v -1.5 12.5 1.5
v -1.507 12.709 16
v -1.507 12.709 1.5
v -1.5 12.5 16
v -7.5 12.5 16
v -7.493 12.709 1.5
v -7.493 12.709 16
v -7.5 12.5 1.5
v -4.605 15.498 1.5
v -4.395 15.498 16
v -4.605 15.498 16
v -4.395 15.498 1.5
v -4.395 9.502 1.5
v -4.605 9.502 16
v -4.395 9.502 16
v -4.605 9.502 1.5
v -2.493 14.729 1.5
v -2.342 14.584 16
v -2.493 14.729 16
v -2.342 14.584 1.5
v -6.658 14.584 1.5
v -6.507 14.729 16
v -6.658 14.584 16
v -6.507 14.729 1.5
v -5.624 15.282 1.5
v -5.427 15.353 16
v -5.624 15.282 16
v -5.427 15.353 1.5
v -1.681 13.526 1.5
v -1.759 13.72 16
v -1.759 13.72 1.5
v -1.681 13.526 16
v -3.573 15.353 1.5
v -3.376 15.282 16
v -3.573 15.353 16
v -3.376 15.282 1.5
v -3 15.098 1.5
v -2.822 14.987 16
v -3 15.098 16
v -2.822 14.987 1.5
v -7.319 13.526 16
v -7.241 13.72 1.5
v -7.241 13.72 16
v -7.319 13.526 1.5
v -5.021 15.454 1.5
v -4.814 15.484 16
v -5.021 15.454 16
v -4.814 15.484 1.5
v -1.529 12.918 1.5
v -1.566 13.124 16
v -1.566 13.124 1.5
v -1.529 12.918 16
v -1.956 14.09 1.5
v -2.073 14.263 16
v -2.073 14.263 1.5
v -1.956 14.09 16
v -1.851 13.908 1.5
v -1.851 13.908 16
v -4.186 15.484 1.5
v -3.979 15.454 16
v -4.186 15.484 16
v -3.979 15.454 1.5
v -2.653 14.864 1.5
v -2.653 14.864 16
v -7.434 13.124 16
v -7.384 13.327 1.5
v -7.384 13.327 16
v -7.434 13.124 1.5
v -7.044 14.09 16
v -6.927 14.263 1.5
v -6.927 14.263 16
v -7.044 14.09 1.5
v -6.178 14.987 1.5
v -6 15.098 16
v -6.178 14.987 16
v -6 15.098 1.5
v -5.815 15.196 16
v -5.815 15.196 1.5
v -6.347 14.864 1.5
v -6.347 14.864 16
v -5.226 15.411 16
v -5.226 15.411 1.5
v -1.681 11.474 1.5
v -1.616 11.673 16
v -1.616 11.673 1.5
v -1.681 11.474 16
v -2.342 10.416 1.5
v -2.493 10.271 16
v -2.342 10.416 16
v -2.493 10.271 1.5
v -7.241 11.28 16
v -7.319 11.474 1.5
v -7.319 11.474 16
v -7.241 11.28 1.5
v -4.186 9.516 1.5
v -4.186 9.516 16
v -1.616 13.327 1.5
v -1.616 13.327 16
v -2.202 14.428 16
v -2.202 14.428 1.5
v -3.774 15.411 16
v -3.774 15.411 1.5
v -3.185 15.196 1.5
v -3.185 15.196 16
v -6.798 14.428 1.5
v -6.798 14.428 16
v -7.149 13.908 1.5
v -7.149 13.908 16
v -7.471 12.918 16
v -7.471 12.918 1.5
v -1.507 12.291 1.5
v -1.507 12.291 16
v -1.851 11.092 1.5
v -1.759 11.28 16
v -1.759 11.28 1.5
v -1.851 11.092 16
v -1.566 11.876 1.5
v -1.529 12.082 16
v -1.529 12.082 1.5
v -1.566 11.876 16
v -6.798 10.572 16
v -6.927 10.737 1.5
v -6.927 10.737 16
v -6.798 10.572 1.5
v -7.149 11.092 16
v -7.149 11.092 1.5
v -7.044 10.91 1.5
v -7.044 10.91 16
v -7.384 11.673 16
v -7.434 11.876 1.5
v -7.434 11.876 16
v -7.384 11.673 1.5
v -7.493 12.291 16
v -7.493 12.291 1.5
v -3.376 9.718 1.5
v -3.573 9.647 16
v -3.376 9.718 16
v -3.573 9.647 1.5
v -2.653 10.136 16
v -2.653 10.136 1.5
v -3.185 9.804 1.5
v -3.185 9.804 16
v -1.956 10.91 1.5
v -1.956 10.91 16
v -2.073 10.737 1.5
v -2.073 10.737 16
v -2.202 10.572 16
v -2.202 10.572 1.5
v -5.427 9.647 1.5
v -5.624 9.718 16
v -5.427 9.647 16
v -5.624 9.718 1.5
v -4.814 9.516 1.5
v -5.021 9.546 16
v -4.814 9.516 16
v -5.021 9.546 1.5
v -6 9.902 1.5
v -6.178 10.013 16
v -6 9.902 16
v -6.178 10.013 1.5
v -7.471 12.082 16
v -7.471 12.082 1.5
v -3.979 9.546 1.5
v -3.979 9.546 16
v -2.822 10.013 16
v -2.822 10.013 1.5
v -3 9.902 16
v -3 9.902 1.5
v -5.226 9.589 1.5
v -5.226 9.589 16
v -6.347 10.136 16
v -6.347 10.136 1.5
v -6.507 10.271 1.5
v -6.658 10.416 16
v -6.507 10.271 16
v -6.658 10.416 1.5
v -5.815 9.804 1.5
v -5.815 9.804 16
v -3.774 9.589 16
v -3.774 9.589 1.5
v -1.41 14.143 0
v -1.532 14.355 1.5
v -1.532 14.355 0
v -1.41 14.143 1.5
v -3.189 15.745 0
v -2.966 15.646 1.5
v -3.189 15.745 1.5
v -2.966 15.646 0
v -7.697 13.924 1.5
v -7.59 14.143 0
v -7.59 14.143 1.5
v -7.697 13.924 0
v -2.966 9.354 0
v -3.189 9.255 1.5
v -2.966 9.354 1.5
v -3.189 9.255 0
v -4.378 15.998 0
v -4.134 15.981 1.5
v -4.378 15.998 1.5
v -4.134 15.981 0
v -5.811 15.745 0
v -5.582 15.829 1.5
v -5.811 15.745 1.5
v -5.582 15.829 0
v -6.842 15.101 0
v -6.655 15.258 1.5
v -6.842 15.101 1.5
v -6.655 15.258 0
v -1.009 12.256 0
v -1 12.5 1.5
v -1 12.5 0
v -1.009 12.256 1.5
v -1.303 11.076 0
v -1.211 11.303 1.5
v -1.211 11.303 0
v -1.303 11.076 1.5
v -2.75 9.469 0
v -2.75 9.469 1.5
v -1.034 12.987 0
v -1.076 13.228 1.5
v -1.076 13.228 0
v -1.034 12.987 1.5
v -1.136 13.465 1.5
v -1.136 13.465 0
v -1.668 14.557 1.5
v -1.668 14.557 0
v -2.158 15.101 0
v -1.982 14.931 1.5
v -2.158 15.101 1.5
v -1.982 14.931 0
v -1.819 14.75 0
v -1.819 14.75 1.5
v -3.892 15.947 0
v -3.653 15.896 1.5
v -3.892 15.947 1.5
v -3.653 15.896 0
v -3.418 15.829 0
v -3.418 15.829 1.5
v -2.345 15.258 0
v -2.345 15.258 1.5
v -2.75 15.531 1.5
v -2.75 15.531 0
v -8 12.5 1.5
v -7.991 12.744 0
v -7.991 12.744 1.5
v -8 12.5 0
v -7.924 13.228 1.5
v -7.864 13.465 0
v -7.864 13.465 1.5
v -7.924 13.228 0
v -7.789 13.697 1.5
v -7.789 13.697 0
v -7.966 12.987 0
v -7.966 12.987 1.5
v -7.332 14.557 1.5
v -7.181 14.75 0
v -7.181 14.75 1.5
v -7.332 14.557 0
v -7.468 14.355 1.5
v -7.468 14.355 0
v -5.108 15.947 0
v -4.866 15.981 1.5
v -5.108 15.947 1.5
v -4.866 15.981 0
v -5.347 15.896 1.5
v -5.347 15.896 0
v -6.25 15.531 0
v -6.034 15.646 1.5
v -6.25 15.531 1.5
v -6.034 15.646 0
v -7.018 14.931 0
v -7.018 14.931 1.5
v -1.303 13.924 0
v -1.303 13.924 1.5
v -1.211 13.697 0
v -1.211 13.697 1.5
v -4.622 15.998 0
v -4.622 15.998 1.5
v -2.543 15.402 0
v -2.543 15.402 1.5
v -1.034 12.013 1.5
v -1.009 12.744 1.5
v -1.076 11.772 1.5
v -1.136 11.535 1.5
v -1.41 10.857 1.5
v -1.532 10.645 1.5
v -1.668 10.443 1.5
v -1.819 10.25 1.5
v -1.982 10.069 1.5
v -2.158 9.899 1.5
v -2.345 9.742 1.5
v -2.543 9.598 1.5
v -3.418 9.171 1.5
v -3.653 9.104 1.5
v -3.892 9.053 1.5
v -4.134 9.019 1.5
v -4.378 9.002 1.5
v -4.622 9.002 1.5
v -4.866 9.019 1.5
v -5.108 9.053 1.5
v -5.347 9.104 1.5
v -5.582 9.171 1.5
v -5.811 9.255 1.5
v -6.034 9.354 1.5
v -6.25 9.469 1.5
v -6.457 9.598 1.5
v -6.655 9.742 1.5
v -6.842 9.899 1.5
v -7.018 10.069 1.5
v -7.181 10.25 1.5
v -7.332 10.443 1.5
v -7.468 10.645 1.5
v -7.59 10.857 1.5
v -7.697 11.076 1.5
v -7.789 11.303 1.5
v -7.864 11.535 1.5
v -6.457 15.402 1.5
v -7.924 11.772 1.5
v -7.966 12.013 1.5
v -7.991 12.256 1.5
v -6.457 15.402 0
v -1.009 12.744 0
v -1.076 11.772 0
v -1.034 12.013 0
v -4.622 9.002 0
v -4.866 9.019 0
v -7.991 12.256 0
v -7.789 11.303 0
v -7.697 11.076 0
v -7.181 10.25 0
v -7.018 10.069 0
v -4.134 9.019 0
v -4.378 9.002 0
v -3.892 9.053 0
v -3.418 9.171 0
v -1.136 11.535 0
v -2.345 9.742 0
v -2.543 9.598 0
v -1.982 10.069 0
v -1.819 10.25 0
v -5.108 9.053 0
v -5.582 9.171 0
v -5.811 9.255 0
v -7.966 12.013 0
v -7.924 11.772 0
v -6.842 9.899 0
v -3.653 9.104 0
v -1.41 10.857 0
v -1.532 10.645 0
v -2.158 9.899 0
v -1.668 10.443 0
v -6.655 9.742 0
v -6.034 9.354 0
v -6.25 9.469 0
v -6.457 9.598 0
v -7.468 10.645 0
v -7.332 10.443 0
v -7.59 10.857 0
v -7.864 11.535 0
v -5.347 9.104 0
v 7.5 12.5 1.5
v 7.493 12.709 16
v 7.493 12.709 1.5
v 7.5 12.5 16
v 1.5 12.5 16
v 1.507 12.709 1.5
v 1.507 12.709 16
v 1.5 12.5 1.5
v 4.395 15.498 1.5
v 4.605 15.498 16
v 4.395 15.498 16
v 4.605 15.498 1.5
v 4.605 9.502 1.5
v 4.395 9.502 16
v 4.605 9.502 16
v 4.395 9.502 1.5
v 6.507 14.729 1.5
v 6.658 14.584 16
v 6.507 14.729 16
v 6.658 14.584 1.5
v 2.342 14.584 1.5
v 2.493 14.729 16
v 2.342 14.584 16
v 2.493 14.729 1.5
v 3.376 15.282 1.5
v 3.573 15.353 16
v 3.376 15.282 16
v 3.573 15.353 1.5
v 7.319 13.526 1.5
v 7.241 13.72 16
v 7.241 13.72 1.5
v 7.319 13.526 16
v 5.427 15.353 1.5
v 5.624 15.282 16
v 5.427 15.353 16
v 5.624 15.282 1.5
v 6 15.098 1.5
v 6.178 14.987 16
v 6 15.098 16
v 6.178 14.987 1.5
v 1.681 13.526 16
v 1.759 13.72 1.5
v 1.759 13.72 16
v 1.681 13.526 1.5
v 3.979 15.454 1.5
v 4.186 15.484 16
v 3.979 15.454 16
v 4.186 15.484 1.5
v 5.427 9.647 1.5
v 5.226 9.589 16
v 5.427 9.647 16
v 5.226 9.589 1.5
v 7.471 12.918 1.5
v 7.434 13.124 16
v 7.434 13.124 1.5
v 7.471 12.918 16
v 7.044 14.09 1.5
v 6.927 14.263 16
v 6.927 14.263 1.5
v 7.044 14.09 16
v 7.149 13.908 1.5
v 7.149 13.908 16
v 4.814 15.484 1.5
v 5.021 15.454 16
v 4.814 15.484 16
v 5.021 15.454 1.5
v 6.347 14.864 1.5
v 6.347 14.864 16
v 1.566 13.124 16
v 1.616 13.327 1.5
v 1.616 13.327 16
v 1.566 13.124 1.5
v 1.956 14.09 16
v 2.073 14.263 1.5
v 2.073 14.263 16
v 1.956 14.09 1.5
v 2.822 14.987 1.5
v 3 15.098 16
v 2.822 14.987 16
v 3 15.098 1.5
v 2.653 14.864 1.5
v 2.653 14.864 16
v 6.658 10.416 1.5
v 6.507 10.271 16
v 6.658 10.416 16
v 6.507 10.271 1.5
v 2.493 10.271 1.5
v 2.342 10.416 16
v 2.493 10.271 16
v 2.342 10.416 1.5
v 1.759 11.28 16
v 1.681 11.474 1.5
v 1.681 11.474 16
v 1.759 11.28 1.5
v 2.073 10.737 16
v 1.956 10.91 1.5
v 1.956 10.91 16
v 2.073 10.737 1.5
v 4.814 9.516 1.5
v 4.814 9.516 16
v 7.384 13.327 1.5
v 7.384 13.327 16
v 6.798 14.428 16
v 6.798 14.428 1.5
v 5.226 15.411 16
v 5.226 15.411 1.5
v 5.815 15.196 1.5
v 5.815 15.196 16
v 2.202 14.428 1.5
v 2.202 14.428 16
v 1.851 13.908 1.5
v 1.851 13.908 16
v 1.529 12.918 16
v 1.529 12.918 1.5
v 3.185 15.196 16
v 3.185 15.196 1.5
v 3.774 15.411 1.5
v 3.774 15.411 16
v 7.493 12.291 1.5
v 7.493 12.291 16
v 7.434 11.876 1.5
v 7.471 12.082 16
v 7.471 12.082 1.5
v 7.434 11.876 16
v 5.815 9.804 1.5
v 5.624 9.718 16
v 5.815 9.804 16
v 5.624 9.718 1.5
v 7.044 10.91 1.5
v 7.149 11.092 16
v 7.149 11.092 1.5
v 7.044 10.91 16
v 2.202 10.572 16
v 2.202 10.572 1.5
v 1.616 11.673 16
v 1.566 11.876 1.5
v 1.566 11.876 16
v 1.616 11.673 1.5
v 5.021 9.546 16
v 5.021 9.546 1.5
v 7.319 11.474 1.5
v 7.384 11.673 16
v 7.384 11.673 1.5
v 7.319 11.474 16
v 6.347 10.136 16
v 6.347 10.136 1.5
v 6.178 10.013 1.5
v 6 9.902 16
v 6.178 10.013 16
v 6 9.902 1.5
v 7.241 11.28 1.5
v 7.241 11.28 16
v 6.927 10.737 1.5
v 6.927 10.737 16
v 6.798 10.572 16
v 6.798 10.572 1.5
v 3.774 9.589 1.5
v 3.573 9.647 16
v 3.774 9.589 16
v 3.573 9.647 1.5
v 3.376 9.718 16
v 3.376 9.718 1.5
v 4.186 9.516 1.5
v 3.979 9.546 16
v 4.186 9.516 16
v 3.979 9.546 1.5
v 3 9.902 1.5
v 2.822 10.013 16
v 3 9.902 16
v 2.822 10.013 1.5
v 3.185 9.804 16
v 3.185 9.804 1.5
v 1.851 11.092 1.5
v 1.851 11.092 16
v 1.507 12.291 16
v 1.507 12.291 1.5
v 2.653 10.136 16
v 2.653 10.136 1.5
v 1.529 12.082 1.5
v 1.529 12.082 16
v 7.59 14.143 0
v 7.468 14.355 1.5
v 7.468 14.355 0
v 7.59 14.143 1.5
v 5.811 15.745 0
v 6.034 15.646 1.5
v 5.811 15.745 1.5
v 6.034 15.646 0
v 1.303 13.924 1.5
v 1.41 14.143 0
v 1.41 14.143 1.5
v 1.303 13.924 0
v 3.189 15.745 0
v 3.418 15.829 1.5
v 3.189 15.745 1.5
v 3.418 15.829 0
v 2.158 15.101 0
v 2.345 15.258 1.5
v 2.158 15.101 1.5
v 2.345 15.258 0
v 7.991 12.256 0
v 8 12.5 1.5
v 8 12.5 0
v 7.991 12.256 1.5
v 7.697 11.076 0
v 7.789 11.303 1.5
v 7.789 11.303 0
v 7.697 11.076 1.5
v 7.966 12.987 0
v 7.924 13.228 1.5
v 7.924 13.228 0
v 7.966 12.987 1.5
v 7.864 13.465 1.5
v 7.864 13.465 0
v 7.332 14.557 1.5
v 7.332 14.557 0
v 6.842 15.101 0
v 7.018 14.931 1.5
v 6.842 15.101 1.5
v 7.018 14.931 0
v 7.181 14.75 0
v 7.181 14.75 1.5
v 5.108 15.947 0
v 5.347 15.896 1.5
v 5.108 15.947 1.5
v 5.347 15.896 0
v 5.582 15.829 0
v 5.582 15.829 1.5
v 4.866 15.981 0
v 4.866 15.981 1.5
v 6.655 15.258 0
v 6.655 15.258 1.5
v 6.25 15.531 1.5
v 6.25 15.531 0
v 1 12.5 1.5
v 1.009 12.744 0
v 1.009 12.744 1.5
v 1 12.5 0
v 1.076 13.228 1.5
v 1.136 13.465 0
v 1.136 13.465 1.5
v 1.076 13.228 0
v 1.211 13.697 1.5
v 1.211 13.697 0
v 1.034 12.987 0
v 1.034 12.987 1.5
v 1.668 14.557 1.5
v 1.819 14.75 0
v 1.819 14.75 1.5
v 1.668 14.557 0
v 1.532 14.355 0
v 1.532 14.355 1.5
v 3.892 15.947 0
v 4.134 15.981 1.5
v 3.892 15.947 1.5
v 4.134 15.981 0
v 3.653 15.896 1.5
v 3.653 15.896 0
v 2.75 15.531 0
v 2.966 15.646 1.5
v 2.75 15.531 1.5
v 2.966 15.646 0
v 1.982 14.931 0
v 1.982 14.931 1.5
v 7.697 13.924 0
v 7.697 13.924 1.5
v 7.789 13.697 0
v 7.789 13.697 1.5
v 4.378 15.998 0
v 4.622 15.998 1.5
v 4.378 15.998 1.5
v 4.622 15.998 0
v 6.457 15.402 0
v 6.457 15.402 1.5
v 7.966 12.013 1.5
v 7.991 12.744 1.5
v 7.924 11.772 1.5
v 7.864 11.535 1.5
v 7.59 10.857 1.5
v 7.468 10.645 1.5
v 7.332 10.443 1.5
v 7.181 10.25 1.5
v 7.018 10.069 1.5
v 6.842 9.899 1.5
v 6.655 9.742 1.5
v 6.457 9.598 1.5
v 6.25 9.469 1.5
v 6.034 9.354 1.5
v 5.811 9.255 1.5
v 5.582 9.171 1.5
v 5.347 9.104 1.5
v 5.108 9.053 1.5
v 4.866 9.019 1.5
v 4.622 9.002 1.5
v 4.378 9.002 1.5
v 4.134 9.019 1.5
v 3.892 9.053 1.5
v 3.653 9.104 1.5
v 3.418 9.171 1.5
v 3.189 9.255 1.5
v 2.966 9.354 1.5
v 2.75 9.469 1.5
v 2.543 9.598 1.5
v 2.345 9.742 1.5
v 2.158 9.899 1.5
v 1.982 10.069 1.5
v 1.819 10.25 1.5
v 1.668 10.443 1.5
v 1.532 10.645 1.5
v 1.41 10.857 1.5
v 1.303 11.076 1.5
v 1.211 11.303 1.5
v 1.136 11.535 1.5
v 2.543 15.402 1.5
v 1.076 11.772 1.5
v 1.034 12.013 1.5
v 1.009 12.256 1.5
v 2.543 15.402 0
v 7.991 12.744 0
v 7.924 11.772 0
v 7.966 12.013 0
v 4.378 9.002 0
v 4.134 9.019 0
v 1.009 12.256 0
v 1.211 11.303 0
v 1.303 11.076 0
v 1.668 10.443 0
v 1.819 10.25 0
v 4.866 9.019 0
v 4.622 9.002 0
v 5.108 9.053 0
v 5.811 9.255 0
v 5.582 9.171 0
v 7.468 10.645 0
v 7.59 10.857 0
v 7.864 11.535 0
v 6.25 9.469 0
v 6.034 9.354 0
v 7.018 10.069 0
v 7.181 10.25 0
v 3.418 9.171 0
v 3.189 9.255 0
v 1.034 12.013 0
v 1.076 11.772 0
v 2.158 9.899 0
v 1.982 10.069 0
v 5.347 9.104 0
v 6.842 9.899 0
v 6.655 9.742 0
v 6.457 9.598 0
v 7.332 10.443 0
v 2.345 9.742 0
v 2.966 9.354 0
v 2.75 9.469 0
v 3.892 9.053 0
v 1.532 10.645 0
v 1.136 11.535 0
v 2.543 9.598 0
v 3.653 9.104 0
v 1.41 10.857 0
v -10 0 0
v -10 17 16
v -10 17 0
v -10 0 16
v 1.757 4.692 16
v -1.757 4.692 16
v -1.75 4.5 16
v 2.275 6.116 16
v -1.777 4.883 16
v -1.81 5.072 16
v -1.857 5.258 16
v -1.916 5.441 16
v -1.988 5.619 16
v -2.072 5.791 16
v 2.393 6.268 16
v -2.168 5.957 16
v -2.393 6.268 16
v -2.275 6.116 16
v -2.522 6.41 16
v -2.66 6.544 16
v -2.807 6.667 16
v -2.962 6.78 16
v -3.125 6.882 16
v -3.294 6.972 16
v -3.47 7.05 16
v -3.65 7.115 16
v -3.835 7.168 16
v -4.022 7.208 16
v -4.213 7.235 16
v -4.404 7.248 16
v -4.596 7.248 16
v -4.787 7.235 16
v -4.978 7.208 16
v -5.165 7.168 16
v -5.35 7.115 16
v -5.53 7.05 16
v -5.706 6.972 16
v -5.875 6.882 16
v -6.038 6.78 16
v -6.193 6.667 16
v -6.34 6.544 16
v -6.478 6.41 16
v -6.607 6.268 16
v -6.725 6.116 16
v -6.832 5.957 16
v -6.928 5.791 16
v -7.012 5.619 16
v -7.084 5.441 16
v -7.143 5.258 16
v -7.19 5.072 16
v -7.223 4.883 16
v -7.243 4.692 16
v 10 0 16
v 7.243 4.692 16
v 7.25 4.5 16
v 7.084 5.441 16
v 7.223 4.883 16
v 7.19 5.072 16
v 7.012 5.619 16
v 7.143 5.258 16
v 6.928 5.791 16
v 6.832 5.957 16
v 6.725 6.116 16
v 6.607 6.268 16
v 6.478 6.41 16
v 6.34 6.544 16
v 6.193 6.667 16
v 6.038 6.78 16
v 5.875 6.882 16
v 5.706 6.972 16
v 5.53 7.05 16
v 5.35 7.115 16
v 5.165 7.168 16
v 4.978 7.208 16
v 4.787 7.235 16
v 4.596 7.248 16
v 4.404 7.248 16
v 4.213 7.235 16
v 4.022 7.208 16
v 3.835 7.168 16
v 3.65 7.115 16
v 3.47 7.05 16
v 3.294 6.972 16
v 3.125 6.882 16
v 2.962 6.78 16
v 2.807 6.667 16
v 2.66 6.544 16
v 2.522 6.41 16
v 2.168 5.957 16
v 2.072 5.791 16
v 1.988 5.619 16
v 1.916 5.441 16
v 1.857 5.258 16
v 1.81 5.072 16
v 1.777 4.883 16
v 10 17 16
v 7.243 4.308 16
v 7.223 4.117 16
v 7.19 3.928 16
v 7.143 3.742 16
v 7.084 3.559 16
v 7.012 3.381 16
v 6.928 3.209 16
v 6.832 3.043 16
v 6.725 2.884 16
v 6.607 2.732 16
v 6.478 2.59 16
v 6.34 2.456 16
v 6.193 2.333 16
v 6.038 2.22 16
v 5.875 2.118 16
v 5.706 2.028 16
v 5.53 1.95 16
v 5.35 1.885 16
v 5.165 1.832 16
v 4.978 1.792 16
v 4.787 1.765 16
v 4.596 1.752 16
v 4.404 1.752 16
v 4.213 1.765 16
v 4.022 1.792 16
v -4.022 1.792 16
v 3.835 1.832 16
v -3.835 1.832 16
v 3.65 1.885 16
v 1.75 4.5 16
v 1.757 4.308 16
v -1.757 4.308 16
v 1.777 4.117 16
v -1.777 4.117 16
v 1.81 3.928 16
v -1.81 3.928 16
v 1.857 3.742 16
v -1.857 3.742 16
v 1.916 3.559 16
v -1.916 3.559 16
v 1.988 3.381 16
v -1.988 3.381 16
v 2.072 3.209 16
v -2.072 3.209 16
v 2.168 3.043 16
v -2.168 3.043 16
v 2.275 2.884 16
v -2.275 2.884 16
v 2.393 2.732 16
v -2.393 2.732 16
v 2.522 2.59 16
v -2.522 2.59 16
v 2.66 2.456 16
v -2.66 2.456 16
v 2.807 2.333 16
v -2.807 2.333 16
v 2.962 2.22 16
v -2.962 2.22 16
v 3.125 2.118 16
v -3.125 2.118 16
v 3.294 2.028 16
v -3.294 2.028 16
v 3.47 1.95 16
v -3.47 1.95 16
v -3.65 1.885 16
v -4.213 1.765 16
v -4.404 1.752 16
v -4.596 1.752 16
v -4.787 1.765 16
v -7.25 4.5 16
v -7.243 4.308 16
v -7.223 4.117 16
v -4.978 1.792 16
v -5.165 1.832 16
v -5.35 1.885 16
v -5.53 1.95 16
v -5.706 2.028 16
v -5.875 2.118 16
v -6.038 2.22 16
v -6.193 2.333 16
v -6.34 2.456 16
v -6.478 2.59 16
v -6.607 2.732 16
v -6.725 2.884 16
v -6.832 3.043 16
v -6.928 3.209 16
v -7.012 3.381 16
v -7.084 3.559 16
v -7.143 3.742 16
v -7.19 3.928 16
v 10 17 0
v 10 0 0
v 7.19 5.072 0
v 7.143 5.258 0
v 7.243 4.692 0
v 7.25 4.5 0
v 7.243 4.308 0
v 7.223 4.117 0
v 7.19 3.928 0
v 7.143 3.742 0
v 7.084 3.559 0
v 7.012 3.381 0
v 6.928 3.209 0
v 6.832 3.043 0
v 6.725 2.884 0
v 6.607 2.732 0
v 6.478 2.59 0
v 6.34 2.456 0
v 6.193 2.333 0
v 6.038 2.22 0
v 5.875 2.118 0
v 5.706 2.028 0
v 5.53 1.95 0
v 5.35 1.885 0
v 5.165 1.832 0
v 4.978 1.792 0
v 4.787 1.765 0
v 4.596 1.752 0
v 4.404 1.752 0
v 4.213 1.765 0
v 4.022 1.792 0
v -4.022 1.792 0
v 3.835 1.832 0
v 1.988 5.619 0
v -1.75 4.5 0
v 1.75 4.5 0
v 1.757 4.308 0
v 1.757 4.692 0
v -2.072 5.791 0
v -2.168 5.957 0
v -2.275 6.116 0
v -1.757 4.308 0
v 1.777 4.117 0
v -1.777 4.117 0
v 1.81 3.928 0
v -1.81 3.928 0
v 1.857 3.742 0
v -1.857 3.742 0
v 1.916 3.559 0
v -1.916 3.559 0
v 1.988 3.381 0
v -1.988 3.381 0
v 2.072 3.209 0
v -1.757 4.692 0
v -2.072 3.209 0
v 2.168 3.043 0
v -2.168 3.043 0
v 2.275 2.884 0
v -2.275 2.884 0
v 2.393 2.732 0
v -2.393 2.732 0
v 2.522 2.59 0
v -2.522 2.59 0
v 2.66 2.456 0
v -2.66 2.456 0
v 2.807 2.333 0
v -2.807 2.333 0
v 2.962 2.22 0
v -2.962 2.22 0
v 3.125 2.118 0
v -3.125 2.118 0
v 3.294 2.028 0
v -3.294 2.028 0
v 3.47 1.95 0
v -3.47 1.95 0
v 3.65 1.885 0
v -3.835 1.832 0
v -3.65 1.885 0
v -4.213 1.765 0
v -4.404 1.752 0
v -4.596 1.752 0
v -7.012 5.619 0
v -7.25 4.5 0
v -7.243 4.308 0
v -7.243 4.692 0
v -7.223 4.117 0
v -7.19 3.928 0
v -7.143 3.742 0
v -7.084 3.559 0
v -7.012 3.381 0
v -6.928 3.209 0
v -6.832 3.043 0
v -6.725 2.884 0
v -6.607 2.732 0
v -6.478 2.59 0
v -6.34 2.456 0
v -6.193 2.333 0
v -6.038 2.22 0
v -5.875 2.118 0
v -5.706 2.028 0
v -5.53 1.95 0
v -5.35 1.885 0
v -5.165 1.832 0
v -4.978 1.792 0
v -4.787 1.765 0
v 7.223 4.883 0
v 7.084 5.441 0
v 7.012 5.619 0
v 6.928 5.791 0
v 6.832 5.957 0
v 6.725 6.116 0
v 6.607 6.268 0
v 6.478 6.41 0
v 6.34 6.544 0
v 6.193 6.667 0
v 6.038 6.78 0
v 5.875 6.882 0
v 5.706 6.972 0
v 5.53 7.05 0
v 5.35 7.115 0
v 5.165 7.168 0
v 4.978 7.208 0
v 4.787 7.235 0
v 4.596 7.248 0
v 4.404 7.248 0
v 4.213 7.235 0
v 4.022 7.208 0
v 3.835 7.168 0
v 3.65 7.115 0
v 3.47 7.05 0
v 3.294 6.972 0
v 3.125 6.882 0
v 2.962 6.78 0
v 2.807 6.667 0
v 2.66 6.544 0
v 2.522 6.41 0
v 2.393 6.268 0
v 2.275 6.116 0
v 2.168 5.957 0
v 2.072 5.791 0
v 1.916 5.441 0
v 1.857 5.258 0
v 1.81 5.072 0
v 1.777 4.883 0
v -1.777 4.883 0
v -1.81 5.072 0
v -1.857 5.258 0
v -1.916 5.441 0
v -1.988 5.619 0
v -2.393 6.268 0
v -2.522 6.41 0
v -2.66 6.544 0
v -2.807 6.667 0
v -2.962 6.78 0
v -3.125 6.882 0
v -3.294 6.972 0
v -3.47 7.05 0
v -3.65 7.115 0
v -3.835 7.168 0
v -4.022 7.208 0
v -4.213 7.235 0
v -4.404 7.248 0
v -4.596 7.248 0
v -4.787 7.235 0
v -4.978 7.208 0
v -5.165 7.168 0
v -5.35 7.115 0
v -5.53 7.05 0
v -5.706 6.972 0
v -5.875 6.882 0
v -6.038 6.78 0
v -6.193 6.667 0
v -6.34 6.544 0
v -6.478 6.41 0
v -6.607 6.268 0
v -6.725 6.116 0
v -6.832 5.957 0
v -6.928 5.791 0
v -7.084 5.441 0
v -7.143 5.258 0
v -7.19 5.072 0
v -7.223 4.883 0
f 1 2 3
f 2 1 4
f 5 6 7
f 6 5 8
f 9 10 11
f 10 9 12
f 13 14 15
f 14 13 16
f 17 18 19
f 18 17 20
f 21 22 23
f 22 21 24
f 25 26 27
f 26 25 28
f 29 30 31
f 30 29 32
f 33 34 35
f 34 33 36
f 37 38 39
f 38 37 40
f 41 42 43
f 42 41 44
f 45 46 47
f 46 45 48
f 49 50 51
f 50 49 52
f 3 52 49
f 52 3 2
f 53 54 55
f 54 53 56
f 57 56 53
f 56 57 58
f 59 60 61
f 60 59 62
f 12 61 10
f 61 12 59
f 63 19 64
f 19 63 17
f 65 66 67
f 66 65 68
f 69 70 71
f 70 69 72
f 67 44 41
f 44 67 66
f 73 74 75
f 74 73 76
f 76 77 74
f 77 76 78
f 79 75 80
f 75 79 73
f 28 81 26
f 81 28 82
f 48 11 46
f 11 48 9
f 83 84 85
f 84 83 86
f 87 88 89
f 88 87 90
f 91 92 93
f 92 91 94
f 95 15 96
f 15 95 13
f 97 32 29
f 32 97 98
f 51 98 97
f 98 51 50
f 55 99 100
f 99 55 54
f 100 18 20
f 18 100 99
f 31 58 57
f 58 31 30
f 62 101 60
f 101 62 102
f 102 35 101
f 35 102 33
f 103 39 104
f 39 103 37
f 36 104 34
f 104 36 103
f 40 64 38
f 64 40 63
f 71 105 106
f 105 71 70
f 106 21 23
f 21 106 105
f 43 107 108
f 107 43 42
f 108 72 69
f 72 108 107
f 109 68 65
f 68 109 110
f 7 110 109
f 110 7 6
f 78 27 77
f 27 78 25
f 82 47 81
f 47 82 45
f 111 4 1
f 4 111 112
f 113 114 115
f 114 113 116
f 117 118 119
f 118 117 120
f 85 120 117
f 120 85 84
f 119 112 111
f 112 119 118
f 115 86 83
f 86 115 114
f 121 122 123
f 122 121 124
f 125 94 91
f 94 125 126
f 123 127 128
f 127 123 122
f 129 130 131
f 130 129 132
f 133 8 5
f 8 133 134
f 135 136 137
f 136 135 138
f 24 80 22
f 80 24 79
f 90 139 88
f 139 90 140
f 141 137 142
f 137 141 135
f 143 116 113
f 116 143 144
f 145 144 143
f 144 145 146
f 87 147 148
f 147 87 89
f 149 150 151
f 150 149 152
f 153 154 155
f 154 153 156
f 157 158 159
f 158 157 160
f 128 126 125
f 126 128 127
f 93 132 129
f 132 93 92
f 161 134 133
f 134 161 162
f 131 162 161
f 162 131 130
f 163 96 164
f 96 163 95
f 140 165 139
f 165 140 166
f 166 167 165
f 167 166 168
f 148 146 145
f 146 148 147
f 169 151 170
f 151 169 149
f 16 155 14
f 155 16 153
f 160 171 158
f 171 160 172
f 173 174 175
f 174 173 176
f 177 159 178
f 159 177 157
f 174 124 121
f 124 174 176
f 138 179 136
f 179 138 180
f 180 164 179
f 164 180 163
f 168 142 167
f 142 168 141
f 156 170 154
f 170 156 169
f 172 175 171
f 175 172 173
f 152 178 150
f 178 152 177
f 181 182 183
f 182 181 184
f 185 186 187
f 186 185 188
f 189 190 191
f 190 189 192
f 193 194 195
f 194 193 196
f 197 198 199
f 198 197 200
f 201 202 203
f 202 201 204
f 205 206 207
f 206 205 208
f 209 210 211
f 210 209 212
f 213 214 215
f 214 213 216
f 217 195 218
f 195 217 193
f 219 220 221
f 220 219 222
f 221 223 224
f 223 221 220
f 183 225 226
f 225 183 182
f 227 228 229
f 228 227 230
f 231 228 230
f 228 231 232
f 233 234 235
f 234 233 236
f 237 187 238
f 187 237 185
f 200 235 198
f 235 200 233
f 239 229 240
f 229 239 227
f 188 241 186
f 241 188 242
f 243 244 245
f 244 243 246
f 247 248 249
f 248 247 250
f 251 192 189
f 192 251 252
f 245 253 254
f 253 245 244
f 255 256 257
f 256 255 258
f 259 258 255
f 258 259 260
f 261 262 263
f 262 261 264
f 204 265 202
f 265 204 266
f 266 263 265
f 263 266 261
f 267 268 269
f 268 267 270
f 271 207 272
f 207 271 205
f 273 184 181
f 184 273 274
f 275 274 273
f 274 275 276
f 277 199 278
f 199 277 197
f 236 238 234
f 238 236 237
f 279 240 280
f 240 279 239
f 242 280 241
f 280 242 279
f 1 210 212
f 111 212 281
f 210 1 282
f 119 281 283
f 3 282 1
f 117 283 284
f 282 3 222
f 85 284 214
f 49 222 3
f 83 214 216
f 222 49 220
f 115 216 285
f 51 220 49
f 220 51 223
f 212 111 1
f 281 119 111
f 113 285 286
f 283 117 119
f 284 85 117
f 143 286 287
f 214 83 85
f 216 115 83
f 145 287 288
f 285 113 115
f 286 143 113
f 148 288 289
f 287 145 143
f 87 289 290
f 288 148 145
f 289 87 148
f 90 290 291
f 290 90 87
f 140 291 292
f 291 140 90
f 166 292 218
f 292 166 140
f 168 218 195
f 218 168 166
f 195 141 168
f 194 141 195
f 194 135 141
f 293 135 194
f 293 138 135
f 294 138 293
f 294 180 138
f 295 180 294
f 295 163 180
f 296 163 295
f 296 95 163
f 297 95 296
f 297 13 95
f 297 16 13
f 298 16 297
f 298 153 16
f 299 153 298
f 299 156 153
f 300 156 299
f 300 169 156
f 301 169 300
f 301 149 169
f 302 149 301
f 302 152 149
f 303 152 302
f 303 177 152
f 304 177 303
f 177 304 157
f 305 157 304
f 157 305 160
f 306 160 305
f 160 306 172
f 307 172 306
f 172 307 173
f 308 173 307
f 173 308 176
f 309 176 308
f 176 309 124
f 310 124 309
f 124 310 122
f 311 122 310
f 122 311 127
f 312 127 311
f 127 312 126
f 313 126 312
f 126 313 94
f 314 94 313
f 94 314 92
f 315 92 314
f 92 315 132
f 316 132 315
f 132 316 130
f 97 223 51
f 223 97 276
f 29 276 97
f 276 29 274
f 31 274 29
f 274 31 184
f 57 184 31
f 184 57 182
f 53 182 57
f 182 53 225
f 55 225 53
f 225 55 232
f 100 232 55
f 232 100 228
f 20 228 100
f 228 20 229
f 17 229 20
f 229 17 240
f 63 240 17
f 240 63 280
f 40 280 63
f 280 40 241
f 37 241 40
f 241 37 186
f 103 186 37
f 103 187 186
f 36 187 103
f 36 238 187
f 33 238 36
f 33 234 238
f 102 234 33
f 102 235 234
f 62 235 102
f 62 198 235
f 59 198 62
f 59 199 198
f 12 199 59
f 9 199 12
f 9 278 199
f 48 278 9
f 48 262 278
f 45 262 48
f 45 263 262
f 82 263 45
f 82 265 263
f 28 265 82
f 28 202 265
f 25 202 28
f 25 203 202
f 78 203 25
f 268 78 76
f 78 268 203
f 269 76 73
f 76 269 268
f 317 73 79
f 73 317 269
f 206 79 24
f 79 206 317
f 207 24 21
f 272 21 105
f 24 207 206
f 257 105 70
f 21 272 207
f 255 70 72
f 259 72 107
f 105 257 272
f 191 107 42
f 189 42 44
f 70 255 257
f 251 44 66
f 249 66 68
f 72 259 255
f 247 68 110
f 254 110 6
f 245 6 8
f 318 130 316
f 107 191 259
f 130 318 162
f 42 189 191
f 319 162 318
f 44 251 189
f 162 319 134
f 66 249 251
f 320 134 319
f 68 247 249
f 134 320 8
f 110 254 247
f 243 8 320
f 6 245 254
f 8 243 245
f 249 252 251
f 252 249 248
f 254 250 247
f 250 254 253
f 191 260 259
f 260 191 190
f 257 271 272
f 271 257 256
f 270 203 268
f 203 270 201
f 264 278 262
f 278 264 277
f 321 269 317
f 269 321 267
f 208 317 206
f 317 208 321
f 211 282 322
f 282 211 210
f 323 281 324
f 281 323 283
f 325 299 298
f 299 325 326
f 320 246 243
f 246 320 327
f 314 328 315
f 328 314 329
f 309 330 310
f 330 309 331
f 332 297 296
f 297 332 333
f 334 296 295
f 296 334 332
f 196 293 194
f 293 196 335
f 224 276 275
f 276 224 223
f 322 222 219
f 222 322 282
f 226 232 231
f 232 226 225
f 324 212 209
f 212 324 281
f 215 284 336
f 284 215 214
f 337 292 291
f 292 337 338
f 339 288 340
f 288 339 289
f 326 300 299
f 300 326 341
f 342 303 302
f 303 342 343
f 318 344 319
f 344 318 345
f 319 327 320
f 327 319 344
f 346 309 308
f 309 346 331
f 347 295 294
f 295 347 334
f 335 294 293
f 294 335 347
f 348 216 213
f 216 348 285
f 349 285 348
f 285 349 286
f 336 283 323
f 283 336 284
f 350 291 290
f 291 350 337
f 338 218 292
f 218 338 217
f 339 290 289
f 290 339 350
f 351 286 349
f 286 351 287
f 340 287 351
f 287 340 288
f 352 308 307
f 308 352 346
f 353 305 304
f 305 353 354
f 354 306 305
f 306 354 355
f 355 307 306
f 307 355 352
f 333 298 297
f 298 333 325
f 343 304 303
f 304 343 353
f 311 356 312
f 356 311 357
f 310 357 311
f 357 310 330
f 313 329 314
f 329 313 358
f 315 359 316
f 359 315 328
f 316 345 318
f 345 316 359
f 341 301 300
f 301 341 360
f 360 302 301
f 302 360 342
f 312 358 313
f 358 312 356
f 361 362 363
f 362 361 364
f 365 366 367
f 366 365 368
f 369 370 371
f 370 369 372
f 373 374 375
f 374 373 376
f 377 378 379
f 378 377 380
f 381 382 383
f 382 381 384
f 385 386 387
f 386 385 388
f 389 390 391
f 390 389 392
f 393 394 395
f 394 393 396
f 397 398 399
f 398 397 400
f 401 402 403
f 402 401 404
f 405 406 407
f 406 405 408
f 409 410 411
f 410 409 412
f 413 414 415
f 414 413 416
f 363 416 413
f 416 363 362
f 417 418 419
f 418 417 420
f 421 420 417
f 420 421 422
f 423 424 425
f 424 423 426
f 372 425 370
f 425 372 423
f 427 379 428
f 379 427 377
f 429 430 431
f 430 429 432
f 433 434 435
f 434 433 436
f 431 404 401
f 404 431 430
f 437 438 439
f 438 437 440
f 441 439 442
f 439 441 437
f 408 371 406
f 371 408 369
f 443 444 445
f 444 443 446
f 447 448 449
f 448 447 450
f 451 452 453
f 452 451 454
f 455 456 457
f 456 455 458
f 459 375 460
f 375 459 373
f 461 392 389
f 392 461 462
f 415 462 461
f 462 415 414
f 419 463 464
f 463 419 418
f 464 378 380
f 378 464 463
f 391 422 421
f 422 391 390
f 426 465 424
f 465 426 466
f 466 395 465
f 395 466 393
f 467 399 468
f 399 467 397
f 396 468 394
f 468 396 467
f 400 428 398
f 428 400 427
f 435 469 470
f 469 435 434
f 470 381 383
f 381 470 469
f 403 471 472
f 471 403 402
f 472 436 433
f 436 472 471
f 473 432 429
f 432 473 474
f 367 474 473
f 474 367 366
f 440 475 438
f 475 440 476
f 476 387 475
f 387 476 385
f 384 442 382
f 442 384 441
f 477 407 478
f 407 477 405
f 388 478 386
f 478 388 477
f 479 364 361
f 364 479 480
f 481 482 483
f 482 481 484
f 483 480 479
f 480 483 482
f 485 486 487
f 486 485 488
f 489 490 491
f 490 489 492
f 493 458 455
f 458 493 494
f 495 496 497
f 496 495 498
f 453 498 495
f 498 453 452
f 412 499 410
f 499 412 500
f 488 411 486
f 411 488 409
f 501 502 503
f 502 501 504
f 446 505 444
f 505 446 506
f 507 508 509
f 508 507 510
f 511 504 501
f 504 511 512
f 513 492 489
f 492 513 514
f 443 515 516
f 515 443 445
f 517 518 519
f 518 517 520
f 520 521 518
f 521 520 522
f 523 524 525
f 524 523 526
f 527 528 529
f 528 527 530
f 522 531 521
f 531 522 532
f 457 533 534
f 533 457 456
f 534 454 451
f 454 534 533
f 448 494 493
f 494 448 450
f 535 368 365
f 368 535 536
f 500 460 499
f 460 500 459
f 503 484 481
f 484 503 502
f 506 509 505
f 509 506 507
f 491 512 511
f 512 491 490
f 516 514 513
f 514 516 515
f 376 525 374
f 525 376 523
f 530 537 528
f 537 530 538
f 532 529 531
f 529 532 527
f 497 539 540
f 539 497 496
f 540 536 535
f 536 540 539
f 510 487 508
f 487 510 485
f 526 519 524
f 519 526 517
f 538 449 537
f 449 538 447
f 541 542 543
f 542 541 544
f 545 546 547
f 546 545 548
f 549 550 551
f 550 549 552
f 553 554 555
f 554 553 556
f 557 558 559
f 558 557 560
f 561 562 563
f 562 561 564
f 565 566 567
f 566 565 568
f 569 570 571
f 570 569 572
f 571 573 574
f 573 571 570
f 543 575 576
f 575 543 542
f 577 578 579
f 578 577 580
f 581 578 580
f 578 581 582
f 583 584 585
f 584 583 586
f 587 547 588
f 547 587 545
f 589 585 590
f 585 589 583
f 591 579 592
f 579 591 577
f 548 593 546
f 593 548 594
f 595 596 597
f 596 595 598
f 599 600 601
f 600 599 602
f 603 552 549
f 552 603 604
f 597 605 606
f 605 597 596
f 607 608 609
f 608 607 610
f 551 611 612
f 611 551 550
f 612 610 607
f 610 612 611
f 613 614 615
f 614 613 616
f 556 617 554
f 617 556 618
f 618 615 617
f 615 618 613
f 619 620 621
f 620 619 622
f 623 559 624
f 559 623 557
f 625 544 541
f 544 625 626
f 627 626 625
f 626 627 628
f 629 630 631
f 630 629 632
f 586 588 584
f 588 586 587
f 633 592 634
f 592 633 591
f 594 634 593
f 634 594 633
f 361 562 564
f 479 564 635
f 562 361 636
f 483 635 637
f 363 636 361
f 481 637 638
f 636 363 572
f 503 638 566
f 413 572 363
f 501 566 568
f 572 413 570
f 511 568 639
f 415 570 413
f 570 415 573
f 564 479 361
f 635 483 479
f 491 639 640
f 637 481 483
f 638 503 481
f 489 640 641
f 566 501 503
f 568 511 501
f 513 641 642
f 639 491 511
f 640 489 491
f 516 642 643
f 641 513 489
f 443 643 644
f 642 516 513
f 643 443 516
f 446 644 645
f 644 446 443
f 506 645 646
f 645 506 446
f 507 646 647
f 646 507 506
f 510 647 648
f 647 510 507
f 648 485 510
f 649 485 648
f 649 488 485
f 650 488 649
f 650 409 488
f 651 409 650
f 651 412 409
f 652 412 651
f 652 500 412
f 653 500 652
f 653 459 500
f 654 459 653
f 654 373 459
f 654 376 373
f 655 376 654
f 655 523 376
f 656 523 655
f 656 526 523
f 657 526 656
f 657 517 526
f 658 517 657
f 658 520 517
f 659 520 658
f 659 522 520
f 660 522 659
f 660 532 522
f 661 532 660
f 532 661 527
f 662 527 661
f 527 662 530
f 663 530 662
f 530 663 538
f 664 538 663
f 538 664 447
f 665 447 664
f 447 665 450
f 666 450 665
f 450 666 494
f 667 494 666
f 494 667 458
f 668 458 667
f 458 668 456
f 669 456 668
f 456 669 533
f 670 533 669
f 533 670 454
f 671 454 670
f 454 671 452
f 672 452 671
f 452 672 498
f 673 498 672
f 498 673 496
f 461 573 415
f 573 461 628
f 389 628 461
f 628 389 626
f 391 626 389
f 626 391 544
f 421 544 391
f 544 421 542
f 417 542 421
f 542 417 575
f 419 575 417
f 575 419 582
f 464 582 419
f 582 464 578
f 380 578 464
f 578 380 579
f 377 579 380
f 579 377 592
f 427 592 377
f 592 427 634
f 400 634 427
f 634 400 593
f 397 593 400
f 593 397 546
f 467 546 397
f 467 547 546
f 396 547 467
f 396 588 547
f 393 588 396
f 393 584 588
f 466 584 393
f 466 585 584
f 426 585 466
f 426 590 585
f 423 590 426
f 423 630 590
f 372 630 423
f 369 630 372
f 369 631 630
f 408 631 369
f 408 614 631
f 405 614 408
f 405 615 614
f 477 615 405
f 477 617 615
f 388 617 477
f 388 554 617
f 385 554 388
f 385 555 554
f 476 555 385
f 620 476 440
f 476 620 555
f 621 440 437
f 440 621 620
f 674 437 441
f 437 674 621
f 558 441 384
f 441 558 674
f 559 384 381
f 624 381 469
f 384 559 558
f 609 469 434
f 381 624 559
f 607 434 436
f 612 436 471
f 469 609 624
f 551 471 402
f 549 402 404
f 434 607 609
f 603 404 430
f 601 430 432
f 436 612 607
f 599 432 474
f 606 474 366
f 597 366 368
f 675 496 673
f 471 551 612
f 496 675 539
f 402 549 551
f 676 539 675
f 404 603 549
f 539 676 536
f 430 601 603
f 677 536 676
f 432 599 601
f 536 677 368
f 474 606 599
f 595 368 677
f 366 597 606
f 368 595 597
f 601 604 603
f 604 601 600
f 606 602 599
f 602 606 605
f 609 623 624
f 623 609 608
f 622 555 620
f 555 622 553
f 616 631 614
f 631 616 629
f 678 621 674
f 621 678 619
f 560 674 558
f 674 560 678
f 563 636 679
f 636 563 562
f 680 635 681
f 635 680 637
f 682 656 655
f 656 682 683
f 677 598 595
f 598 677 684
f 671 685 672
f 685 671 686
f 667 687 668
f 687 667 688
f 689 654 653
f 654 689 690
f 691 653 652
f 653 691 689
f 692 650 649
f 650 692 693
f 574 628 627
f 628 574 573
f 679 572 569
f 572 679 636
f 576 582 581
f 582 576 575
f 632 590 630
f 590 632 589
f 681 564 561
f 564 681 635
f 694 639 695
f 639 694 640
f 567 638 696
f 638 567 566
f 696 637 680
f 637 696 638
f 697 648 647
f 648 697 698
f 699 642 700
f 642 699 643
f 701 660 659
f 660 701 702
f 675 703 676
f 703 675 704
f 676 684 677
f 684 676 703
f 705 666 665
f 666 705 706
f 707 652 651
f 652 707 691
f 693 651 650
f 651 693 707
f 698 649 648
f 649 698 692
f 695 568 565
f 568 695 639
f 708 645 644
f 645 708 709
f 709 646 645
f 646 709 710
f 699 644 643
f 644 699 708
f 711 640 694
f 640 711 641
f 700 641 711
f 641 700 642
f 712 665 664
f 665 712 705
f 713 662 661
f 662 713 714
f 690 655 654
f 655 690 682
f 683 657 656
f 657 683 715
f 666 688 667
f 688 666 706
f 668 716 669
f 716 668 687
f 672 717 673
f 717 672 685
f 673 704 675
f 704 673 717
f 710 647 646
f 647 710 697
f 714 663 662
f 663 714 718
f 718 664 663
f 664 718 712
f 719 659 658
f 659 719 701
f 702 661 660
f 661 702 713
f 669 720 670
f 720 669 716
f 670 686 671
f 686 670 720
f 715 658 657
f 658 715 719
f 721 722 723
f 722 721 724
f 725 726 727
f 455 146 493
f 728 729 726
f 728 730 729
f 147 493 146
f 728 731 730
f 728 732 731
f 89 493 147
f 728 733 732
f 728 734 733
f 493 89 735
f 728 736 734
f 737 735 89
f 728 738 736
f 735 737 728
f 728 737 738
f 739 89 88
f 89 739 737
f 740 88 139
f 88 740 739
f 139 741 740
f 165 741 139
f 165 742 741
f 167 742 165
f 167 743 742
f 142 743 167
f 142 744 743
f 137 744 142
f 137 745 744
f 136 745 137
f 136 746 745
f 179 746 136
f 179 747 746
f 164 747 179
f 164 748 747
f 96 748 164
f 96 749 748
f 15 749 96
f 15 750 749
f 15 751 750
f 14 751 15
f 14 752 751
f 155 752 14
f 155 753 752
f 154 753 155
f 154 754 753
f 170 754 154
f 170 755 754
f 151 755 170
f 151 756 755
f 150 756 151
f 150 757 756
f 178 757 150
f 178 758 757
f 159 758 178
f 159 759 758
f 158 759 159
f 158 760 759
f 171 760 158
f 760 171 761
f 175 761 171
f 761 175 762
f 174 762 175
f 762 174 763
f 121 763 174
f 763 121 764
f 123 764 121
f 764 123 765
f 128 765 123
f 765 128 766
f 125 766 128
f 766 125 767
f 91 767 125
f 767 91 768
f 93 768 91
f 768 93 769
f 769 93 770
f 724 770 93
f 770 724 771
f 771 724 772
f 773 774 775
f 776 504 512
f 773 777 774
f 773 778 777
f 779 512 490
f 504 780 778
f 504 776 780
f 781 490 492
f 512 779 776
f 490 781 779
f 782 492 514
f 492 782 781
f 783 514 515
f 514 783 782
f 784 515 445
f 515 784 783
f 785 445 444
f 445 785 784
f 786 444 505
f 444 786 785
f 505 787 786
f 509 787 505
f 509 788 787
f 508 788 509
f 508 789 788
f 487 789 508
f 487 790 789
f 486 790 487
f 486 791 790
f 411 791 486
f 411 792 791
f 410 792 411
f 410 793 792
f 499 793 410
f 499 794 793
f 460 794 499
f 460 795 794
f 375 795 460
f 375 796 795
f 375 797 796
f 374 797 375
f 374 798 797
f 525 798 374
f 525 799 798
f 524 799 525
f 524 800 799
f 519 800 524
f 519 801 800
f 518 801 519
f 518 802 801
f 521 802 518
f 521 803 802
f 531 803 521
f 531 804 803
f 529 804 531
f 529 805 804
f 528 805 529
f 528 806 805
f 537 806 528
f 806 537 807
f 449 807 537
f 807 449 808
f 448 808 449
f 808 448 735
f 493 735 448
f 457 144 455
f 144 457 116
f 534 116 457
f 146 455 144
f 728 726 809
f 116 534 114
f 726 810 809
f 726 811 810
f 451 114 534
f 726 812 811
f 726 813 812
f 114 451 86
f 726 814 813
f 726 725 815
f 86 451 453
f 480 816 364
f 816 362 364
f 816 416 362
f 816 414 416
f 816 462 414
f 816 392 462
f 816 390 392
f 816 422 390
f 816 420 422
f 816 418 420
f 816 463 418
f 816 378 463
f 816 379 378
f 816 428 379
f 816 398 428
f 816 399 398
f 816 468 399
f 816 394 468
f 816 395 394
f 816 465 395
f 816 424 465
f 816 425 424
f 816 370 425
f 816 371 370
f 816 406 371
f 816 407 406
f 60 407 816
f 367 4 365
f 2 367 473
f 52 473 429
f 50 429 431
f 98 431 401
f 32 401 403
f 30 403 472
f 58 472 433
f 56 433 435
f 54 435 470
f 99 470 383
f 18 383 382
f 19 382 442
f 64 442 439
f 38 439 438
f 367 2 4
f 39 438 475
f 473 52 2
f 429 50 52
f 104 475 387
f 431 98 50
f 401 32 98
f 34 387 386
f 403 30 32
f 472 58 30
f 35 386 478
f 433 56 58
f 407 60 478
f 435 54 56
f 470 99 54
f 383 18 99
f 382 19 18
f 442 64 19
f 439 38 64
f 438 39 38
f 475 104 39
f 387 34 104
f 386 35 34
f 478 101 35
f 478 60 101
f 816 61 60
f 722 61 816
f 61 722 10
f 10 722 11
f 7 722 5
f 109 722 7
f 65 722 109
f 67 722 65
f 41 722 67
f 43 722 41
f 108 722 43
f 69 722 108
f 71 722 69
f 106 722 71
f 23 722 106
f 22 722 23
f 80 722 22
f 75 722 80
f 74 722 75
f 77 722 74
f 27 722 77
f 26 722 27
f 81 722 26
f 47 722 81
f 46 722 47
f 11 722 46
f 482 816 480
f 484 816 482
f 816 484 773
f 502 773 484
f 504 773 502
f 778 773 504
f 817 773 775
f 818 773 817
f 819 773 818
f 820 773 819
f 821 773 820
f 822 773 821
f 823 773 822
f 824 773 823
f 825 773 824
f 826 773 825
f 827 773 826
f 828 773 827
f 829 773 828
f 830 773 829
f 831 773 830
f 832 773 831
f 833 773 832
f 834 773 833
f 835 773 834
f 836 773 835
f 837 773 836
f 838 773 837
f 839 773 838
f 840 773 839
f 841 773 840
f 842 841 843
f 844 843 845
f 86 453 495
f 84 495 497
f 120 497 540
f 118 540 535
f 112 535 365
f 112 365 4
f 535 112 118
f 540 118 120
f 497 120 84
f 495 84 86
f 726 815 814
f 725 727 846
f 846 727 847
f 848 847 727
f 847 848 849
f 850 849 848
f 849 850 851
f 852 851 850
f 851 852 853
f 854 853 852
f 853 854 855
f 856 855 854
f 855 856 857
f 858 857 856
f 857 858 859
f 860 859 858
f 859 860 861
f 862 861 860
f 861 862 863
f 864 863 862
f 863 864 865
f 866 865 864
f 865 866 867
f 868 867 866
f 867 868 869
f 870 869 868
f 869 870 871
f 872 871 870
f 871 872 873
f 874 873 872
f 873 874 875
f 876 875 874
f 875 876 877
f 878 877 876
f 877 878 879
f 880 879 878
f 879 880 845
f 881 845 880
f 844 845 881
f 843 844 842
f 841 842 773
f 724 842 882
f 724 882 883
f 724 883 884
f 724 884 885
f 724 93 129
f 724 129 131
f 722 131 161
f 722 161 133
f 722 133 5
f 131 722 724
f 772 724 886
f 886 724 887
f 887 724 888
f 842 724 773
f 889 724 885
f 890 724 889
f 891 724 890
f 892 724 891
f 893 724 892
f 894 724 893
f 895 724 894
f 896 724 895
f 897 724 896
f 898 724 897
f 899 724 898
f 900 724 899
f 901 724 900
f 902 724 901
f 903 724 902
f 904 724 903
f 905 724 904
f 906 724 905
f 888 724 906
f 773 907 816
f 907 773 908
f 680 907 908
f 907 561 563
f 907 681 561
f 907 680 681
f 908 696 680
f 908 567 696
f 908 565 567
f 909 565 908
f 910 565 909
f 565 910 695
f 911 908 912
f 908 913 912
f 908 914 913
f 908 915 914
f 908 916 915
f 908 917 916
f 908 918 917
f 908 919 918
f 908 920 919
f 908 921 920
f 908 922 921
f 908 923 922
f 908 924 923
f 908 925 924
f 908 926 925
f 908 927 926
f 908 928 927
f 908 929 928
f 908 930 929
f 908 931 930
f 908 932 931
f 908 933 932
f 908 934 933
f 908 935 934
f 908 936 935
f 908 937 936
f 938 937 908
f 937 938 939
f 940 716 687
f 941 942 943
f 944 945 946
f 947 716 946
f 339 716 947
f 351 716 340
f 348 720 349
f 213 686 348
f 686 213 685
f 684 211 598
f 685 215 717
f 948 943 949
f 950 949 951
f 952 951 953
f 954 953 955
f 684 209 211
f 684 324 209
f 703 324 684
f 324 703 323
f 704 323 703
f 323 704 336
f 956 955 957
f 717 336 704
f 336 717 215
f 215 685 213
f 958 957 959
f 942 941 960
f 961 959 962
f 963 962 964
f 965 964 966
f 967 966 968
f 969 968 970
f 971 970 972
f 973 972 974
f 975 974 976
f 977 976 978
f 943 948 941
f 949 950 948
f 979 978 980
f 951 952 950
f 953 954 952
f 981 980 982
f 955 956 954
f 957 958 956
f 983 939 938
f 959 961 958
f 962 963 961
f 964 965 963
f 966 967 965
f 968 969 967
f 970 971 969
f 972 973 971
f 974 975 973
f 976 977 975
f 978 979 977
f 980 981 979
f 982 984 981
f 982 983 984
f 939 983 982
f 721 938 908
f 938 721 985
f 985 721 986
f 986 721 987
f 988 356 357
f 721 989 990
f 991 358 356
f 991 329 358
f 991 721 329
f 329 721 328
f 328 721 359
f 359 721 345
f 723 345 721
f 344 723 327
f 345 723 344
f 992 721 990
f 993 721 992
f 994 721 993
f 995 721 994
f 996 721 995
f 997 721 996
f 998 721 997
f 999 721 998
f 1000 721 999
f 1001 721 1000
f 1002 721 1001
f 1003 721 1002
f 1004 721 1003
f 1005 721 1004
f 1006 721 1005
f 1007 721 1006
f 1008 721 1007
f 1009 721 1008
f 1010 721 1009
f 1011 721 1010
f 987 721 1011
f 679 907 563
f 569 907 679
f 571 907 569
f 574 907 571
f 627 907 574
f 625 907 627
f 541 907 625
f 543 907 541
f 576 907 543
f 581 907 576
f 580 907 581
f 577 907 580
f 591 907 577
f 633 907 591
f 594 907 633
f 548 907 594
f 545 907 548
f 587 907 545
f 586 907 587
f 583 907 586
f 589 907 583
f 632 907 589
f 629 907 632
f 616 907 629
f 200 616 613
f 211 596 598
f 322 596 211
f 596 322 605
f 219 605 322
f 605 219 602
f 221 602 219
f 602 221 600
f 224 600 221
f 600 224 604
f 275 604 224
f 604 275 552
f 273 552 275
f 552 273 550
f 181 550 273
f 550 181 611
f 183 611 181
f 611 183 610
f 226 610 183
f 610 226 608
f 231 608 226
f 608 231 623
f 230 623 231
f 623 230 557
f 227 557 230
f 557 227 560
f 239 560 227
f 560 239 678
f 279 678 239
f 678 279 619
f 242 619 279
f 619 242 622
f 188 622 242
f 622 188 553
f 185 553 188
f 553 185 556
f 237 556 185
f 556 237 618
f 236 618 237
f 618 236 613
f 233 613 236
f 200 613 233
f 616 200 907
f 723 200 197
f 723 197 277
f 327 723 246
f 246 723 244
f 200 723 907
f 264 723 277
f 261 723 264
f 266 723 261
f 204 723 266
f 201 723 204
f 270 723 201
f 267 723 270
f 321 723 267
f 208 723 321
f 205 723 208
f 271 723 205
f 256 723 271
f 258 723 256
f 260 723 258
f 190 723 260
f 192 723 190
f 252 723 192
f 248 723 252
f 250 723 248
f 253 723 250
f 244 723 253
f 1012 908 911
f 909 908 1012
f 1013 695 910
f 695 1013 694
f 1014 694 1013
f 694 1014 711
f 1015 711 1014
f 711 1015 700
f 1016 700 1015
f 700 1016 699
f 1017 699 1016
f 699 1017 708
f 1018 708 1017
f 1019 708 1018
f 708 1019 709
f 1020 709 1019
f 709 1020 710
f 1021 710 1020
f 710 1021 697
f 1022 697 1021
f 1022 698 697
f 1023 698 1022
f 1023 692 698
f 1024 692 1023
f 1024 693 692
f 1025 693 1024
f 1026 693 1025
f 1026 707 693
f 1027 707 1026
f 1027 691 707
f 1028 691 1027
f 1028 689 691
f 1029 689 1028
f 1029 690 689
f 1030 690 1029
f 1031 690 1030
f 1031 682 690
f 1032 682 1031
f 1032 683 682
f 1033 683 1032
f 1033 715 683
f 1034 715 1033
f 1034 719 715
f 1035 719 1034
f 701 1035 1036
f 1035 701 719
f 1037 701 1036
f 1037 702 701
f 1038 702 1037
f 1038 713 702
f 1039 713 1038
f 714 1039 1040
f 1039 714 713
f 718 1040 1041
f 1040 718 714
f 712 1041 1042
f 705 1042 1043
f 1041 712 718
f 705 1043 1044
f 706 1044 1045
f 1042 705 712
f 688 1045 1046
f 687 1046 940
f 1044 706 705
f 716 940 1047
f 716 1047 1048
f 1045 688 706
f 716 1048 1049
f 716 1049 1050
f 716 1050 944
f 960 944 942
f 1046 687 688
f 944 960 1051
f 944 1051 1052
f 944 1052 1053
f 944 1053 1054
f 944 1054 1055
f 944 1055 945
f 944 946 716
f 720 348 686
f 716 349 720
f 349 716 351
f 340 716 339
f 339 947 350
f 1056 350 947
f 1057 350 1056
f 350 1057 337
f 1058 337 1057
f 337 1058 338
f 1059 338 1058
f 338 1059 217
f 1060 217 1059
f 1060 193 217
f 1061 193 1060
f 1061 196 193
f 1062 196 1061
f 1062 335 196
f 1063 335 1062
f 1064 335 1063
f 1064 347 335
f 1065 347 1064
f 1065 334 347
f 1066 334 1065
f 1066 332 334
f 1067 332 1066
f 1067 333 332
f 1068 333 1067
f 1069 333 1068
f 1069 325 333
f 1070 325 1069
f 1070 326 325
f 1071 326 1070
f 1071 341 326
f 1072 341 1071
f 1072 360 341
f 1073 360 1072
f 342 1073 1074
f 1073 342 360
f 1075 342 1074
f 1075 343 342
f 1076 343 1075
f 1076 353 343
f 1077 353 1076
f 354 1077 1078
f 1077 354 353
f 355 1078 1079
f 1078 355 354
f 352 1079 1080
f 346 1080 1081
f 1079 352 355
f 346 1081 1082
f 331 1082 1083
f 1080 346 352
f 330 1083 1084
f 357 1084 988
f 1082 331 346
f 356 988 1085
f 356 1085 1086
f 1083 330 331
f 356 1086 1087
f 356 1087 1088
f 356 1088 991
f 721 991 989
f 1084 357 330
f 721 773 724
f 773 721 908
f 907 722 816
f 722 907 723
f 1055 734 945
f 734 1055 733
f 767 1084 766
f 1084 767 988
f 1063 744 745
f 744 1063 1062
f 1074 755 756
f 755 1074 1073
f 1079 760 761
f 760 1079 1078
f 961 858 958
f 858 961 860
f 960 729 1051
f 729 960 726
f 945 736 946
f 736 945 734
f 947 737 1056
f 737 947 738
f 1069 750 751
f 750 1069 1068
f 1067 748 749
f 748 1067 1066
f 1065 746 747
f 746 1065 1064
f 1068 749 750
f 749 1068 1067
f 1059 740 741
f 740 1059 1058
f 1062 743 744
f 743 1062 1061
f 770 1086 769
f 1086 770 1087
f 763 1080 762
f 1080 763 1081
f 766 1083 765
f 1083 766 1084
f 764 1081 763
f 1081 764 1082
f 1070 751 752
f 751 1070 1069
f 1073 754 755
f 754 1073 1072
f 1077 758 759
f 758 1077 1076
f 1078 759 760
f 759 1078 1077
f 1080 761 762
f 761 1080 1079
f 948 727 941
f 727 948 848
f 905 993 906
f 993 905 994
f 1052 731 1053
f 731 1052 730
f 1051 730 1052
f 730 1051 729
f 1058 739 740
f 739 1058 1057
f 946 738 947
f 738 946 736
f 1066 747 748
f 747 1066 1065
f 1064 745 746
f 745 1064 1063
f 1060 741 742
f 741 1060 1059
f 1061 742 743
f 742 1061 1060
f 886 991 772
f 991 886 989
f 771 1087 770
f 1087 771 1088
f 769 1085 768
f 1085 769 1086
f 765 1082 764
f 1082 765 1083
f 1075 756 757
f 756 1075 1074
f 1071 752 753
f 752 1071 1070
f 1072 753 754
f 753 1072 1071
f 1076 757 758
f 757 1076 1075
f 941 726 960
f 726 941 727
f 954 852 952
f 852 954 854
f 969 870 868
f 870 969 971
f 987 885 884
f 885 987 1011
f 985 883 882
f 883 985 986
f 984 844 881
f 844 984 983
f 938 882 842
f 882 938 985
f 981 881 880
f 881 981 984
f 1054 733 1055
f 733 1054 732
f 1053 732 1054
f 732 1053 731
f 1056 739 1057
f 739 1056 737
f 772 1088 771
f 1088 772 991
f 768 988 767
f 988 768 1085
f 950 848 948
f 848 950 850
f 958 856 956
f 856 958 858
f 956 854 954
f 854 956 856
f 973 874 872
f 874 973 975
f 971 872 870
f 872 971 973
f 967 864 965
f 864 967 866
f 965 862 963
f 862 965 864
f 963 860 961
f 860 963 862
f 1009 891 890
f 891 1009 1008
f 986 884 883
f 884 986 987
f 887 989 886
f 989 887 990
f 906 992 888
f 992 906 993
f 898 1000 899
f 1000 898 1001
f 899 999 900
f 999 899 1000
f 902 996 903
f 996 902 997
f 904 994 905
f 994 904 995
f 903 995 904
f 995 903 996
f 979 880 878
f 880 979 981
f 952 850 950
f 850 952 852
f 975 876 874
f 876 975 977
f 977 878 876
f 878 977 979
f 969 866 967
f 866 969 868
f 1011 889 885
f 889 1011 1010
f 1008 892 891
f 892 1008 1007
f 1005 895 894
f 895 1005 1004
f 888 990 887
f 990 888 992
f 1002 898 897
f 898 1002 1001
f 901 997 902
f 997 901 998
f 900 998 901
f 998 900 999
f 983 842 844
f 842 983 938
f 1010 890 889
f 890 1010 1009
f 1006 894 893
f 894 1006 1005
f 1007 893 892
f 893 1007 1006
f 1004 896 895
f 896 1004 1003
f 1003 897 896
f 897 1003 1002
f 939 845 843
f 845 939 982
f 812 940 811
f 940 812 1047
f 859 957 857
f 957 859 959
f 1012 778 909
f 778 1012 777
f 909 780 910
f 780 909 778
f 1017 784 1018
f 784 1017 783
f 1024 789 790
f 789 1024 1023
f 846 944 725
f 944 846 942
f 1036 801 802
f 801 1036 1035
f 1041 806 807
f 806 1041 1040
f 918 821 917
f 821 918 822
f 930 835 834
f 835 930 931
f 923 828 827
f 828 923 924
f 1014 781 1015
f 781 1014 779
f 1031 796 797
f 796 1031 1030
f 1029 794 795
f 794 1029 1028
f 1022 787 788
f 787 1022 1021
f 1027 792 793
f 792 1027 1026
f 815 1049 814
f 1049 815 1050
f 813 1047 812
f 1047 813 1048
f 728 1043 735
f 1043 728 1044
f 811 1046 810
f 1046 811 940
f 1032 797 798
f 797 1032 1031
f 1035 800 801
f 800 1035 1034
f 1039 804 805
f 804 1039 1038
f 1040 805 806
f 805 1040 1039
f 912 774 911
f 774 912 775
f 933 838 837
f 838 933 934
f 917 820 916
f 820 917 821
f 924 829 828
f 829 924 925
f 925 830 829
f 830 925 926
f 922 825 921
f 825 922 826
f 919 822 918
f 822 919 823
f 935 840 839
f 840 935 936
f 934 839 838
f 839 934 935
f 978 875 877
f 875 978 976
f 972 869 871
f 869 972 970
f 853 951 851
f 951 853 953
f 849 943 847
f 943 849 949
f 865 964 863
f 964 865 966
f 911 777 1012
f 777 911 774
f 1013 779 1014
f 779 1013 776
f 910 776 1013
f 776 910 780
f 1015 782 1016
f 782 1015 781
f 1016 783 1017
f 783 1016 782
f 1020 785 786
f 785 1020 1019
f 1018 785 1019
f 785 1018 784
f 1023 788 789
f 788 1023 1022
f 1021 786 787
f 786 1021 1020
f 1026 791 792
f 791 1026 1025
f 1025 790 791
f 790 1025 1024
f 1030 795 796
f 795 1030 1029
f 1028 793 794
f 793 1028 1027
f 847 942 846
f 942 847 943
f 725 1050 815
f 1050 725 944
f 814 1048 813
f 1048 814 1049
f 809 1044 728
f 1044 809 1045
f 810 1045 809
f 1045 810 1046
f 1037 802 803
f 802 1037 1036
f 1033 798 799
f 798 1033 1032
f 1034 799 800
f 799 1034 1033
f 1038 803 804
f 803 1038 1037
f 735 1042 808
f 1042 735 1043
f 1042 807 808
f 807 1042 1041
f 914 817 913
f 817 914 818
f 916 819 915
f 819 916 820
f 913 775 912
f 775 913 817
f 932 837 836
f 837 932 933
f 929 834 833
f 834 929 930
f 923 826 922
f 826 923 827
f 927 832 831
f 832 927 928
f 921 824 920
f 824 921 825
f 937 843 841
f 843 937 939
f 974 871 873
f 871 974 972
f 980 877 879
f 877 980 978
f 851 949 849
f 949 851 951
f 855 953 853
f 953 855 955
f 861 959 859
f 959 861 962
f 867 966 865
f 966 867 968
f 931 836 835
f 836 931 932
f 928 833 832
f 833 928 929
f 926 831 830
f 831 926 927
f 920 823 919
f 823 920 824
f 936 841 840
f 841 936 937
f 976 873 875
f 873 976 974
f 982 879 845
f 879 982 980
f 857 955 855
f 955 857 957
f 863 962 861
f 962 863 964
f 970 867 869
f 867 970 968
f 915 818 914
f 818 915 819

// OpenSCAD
$fn = 90;

module lineSensor() {
    function size(v) = sqrt(v.x*v.x + v.y*v.y + v.z*v.z);

    fs1 = [-4.5, 4.5, -1];
    fs2 = [4.5, 4.5, -1];

    led1 = [-4.5, 12.5, -2];
    led2 = [4.5, 12.5, -2];

    ch = 16;

    difference() {
        translate([-10, 0, 0]) cube([20, 17, ch]);
        
        translate(fs1) cylinder(h = 18, d = 5.5);
        translate(fs2) cylinder(h = 18, d = 5.5);
        
        translate(led1) {
            cylinder(h = ch + 10, d = 6.0);
            cylinder(h = 3.5, d = 7.0);
            }
        translate(led2) {
            cylinder(h = ch + 10, d = 6.0);
            cylinder(h = 3.5, d = 7.0);
            }
        
        }
    }

lineSensor();
